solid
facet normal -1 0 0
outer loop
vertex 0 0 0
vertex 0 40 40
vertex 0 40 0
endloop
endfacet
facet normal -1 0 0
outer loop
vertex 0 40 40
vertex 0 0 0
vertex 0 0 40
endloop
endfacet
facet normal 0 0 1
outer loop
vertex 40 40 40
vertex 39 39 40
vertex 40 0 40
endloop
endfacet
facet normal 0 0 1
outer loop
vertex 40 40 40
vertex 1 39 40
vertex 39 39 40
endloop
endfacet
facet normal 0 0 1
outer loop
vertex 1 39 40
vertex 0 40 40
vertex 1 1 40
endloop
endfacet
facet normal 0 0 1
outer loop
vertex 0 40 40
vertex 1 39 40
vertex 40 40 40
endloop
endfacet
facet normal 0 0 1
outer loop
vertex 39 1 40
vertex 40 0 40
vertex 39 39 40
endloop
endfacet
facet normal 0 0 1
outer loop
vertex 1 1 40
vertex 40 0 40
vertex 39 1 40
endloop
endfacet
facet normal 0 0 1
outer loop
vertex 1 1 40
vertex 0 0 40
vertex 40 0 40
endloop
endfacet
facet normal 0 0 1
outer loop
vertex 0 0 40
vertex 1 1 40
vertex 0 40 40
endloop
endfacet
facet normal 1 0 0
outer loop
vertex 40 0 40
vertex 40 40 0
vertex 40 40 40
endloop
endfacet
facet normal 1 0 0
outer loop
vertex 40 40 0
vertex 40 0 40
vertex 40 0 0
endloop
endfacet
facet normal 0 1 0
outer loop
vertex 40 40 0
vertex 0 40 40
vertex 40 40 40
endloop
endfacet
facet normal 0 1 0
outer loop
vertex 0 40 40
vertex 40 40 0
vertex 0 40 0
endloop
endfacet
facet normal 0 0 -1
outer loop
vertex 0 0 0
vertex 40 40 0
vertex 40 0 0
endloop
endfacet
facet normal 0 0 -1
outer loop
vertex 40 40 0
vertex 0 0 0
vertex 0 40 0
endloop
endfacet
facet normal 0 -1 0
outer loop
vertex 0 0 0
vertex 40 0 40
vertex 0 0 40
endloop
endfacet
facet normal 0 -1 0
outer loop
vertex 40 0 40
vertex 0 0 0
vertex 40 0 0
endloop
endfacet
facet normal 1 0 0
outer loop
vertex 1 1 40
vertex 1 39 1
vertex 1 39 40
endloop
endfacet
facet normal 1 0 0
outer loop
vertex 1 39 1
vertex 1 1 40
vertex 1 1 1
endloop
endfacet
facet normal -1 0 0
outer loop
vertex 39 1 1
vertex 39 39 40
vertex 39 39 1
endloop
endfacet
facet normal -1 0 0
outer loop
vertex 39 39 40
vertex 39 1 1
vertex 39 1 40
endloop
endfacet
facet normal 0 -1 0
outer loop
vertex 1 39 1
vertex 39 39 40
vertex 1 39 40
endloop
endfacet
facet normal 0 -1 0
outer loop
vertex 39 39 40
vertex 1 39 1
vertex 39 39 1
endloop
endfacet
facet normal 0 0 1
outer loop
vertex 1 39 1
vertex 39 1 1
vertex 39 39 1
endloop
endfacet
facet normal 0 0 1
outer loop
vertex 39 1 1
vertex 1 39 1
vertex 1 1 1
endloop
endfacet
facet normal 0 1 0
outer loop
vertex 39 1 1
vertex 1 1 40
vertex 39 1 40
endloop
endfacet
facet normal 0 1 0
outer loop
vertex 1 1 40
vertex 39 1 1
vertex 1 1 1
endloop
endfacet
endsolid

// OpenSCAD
width = 40;
depth = 40;
height = 40;
thickness = 1;

difference()
{
    cube([width, height, depth]);
    translate([thickness, thickness, thickness])
    {
        cube([width - thickness - thickness, height - thickness - thickness, depth - thickness]);
    }
}
